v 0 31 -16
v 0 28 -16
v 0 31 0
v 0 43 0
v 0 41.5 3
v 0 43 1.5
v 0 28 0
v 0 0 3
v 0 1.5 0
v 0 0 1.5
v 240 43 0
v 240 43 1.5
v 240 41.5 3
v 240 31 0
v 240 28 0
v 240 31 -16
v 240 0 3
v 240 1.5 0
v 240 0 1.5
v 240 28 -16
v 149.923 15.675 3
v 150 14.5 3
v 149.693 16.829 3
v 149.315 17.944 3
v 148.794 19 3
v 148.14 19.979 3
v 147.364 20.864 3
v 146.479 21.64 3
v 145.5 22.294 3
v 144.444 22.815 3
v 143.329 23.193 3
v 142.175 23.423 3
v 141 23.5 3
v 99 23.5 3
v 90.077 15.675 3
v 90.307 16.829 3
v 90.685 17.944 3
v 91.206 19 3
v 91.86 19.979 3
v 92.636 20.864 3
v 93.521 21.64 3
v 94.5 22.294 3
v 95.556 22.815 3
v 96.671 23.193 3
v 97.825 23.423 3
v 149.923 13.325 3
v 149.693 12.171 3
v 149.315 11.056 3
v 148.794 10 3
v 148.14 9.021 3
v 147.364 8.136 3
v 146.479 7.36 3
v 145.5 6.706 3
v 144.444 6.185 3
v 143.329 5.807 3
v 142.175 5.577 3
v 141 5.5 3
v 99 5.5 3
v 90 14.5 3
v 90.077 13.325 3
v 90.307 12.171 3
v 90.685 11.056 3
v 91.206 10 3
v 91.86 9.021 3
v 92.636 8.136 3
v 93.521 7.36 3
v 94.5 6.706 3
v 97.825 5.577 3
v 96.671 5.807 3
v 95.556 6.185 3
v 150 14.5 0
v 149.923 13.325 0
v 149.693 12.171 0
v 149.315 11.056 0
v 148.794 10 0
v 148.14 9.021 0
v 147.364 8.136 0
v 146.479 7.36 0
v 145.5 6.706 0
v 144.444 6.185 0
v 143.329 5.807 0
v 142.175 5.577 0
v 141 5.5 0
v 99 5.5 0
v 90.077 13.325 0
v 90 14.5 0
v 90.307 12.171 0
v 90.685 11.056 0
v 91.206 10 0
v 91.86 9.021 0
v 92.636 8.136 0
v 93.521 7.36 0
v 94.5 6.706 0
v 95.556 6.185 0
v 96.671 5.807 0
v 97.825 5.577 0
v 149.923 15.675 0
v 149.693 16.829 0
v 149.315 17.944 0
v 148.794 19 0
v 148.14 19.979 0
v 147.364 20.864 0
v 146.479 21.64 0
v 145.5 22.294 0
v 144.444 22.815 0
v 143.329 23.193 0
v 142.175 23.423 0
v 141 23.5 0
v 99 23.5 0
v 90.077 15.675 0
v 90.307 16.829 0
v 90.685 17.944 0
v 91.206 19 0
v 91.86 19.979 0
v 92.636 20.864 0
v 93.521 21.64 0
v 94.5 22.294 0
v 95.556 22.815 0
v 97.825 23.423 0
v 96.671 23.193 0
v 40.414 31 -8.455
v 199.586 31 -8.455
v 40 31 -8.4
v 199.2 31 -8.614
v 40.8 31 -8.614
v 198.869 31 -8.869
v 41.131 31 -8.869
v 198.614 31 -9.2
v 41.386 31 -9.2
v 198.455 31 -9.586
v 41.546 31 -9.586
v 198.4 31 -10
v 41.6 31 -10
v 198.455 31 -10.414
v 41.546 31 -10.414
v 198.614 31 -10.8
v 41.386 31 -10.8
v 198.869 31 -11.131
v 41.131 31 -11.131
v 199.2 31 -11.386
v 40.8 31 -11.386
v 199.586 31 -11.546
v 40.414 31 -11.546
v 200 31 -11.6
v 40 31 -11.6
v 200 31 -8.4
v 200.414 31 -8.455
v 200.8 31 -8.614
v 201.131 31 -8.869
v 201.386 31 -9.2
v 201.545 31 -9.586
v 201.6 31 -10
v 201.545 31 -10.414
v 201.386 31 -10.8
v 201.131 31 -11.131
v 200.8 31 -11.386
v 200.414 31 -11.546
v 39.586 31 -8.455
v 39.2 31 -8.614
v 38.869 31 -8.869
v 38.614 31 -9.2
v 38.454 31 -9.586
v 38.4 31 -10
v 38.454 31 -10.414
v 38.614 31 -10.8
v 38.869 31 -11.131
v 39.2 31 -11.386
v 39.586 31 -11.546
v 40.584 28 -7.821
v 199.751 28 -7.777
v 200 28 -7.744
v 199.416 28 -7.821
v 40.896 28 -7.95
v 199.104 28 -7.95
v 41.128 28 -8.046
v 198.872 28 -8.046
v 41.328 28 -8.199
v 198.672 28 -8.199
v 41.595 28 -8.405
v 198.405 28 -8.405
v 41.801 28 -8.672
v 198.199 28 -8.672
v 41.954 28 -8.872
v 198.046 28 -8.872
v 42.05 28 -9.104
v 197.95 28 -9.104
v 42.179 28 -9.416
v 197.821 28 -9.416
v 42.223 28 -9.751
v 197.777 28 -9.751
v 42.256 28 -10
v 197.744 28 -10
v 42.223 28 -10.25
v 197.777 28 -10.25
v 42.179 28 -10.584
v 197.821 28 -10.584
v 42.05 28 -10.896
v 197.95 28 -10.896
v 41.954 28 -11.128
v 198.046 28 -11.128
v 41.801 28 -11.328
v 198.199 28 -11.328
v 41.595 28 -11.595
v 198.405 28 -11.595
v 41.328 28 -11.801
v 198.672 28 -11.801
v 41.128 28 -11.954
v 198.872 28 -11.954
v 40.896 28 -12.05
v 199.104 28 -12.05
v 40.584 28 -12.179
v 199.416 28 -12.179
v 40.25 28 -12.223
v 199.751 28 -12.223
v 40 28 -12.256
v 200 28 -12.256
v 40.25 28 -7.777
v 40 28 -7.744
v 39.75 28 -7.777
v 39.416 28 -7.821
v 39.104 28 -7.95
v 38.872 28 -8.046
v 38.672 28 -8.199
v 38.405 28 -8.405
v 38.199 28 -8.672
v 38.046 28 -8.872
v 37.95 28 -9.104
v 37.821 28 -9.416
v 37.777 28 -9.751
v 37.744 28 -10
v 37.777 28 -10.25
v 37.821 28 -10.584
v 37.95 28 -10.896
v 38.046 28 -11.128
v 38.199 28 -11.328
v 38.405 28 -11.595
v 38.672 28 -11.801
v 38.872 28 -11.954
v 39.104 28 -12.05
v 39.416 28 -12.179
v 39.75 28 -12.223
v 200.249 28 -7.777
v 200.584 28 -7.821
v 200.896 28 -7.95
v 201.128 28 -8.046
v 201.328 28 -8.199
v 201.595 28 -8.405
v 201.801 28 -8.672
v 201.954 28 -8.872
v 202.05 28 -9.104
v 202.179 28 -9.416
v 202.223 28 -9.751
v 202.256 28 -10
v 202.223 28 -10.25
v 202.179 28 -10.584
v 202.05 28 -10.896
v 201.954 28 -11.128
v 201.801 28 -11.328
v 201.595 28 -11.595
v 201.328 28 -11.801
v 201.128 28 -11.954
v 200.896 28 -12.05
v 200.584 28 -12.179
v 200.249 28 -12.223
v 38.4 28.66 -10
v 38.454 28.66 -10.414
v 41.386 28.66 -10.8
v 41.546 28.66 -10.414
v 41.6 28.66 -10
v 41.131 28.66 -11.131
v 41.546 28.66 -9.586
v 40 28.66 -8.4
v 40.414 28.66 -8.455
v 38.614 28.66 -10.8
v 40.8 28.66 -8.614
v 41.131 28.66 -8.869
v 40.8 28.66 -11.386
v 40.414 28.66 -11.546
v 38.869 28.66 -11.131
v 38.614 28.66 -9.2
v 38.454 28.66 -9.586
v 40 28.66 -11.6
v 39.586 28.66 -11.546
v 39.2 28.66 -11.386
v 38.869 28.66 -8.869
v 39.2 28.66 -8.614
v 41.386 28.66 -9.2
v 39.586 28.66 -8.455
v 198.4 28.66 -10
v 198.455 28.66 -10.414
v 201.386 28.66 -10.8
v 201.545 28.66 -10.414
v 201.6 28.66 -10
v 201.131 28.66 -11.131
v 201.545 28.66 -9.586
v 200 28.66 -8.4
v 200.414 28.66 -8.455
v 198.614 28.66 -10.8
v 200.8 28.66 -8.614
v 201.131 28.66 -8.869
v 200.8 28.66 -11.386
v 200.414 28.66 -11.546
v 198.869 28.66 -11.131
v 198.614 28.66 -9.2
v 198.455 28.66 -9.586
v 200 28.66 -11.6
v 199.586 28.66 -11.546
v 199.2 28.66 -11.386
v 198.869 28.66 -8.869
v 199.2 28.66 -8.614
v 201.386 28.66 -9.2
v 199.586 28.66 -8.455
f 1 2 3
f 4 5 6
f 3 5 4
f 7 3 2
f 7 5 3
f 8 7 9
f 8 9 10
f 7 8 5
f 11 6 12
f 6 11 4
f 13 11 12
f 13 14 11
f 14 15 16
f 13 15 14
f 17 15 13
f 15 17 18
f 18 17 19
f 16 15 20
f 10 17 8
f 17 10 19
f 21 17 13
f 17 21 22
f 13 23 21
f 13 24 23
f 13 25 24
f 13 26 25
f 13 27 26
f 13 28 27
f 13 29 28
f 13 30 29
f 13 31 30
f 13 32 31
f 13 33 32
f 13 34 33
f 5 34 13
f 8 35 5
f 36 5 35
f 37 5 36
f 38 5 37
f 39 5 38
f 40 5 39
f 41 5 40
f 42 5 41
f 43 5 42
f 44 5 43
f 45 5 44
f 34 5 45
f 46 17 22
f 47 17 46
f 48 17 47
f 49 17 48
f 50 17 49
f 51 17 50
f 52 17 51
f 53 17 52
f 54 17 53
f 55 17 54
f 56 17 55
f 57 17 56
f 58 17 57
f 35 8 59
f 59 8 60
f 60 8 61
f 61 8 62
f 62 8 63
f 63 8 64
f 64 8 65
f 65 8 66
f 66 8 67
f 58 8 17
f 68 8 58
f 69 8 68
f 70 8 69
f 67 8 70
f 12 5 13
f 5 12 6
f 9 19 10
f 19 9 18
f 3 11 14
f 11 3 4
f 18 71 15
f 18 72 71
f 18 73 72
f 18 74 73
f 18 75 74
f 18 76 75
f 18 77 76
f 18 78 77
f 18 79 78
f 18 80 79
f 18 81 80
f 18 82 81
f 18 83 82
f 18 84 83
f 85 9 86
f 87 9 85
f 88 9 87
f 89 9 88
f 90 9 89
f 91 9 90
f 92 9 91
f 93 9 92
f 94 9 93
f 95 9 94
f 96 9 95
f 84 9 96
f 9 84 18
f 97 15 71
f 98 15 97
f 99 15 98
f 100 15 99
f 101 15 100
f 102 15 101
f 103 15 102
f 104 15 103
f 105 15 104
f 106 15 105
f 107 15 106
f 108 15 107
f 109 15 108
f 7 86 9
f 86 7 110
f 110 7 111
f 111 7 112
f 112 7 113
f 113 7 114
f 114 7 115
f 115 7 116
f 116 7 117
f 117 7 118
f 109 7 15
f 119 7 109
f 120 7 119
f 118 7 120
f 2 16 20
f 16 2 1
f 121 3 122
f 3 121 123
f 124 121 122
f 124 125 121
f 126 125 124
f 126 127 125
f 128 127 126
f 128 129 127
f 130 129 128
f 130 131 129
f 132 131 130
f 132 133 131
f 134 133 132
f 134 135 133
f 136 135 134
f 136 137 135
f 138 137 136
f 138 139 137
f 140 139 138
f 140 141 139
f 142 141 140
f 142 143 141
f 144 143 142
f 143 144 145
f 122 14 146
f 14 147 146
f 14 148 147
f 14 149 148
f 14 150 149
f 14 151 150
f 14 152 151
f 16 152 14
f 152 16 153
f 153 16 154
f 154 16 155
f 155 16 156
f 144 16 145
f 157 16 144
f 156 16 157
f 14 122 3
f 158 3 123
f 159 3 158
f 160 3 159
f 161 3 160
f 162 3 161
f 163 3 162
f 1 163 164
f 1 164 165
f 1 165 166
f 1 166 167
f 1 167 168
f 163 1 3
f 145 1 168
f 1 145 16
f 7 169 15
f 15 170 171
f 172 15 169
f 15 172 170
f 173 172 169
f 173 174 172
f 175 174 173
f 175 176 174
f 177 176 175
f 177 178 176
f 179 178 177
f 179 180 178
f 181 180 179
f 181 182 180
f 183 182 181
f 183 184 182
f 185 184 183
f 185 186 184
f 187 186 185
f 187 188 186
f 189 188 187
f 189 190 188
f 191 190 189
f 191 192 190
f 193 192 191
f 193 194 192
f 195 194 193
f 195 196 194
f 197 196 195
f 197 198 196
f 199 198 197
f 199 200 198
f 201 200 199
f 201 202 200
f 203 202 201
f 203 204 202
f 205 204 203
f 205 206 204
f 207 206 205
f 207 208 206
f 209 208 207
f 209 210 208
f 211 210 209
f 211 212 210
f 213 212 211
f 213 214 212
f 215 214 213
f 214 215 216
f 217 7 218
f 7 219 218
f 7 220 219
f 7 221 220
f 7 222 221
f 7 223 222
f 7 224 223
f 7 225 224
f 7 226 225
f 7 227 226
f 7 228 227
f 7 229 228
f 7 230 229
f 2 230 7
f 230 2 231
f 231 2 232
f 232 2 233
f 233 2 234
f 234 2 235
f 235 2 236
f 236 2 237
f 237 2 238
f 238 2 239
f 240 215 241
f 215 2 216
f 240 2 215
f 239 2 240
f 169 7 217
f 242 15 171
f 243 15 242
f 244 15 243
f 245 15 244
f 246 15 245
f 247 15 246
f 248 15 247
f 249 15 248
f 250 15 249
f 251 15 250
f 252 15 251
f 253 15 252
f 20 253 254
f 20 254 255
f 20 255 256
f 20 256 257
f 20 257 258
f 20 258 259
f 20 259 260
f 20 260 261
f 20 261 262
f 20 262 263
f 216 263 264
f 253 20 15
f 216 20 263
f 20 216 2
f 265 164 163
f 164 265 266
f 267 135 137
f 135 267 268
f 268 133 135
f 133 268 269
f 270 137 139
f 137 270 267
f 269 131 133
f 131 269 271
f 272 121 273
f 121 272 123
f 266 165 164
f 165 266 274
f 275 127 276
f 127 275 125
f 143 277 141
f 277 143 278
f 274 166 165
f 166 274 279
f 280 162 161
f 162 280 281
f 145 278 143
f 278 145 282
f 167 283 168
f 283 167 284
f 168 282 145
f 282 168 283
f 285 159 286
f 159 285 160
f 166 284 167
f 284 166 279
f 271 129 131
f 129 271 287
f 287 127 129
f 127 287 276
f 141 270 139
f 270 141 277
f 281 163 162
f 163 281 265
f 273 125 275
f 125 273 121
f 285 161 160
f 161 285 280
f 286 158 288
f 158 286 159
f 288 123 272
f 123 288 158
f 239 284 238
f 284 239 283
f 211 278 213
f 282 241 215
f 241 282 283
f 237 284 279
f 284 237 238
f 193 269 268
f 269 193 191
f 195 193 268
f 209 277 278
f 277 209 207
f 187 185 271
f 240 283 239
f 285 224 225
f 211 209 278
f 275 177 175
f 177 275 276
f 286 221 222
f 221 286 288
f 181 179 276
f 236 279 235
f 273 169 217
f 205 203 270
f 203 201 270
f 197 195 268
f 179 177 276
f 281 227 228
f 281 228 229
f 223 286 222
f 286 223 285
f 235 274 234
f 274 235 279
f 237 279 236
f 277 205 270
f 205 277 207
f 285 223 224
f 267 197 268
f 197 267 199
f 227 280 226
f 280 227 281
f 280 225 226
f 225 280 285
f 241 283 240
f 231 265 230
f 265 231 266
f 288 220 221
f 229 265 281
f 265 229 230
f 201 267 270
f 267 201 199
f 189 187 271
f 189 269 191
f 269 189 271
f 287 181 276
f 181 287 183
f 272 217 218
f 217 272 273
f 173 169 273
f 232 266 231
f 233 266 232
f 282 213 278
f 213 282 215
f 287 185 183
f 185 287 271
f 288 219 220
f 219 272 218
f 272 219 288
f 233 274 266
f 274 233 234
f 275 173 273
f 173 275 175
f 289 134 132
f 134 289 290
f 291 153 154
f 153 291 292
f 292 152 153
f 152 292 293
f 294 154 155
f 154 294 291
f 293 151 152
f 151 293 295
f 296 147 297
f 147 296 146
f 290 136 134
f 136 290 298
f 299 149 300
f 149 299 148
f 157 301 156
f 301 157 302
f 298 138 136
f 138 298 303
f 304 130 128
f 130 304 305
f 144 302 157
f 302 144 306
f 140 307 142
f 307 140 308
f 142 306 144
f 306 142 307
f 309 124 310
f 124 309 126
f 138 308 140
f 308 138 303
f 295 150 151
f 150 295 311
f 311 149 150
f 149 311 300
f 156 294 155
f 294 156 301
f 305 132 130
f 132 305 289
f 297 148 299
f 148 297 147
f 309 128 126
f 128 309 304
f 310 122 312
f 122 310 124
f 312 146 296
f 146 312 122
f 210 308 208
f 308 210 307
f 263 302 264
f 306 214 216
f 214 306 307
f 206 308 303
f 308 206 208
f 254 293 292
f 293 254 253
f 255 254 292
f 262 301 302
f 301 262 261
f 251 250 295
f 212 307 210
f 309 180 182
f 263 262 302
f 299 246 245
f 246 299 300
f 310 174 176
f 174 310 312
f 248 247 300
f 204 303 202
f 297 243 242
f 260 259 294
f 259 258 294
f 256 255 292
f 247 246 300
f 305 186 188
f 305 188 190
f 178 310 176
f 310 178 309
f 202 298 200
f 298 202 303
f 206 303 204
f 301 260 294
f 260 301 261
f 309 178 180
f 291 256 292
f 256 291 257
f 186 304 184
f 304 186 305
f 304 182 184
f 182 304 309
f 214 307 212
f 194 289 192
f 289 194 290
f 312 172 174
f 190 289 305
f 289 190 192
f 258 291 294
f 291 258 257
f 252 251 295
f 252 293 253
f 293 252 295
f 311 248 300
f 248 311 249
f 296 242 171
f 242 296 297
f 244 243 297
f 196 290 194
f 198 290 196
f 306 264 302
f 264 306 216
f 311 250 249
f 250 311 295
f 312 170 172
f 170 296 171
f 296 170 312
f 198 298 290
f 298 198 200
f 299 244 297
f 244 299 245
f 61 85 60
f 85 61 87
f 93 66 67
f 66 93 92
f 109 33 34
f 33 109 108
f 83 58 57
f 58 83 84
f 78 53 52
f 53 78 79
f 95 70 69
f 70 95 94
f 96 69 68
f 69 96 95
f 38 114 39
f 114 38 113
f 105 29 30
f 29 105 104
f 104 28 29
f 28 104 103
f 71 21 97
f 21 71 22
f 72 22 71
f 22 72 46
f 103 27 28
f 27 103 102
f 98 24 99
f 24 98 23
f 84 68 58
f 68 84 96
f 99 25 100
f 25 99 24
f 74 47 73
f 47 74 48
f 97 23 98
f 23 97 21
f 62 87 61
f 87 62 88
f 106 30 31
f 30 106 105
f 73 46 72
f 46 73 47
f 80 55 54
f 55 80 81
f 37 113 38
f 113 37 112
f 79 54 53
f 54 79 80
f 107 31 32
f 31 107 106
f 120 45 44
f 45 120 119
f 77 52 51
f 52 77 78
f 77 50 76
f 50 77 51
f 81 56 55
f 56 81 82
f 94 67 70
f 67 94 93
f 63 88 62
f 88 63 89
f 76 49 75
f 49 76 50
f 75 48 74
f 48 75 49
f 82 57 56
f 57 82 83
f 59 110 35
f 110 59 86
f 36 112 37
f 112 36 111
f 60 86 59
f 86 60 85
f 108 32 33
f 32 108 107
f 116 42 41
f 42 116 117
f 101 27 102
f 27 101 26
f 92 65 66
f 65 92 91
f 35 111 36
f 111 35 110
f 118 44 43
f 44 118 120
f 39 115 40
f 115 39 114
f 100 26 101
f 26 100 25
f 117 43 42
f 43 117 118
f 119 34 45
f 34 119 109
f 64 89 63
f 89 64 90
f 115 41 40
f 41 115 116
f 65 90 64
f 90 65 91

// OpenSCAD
// Wall-gap strip with a cable slot. Same strip as wall-gap-strip.scad, with a 60 x 18 mm
// rounded slot over the gap so monitor, speaker and PC leads can drop straight down behind
// the desk. Put one behind the VIVO clamps for the monitor leads, one behind the Y60 for
// the PC and lamp, one behind each speaker. Print flat, top face up.

seg   = 240; gap = 31; ontop = 12; th = 3; chamf = 1.5;
lip   = 16;    // locating lip, hangs into the gap against the desk's edge; the screws go through it
lip_t = 3;
screw = 3.2;   // #4 screw clearance; countersunk on the wall side
csk   = 6.5;
slot_l = 60; slot_w = 18;

// two screw holes through the lip, into the desk's back edge, heads toward the wall
module lip_holes(x_list) { for (x = x_list) translate([x, gap - lip_t - 1, -lip / 2 - 2]) rotate([-90, 0, 0]) { cylinder(d = screw, h = lip_t + 2, $fn = 24); cylinder(d1 = csk, d2 = screw, h = (csk - screw) / 2 + 0.01, $fn = 24); } }
module profile() { polygon([[chamf, 0], [gap + ontop, 0], [gap + ontop, th - chamf], [gap + ontop - chamf, th], [0, th], [0, chamf]]); }
difference() {
    union() {
        rotate([90, 0, 90]) linear_extrude(seg) profile();
        translate([0, gap - lip_t, -lip]) cube([seg, lip_t, lip]);
    }
    lip_holes([40, seg - 40]);
    // stadium slot centred on the segment, over the gap (between the wall and the lip)
    translate([seg / 2, (gap - 2) / 2, -1]) hull() {
        translate([-(slot_l - slot_w) / 2, 0, 0]) cylinder(d = slot_w, h = th + 2, $fn = 48);
        translate([ (slot_l - slot_w) / 2, 0, 0]) cylinder(d = slot_w, h = th + 2, $fn = 48);
    }
}
